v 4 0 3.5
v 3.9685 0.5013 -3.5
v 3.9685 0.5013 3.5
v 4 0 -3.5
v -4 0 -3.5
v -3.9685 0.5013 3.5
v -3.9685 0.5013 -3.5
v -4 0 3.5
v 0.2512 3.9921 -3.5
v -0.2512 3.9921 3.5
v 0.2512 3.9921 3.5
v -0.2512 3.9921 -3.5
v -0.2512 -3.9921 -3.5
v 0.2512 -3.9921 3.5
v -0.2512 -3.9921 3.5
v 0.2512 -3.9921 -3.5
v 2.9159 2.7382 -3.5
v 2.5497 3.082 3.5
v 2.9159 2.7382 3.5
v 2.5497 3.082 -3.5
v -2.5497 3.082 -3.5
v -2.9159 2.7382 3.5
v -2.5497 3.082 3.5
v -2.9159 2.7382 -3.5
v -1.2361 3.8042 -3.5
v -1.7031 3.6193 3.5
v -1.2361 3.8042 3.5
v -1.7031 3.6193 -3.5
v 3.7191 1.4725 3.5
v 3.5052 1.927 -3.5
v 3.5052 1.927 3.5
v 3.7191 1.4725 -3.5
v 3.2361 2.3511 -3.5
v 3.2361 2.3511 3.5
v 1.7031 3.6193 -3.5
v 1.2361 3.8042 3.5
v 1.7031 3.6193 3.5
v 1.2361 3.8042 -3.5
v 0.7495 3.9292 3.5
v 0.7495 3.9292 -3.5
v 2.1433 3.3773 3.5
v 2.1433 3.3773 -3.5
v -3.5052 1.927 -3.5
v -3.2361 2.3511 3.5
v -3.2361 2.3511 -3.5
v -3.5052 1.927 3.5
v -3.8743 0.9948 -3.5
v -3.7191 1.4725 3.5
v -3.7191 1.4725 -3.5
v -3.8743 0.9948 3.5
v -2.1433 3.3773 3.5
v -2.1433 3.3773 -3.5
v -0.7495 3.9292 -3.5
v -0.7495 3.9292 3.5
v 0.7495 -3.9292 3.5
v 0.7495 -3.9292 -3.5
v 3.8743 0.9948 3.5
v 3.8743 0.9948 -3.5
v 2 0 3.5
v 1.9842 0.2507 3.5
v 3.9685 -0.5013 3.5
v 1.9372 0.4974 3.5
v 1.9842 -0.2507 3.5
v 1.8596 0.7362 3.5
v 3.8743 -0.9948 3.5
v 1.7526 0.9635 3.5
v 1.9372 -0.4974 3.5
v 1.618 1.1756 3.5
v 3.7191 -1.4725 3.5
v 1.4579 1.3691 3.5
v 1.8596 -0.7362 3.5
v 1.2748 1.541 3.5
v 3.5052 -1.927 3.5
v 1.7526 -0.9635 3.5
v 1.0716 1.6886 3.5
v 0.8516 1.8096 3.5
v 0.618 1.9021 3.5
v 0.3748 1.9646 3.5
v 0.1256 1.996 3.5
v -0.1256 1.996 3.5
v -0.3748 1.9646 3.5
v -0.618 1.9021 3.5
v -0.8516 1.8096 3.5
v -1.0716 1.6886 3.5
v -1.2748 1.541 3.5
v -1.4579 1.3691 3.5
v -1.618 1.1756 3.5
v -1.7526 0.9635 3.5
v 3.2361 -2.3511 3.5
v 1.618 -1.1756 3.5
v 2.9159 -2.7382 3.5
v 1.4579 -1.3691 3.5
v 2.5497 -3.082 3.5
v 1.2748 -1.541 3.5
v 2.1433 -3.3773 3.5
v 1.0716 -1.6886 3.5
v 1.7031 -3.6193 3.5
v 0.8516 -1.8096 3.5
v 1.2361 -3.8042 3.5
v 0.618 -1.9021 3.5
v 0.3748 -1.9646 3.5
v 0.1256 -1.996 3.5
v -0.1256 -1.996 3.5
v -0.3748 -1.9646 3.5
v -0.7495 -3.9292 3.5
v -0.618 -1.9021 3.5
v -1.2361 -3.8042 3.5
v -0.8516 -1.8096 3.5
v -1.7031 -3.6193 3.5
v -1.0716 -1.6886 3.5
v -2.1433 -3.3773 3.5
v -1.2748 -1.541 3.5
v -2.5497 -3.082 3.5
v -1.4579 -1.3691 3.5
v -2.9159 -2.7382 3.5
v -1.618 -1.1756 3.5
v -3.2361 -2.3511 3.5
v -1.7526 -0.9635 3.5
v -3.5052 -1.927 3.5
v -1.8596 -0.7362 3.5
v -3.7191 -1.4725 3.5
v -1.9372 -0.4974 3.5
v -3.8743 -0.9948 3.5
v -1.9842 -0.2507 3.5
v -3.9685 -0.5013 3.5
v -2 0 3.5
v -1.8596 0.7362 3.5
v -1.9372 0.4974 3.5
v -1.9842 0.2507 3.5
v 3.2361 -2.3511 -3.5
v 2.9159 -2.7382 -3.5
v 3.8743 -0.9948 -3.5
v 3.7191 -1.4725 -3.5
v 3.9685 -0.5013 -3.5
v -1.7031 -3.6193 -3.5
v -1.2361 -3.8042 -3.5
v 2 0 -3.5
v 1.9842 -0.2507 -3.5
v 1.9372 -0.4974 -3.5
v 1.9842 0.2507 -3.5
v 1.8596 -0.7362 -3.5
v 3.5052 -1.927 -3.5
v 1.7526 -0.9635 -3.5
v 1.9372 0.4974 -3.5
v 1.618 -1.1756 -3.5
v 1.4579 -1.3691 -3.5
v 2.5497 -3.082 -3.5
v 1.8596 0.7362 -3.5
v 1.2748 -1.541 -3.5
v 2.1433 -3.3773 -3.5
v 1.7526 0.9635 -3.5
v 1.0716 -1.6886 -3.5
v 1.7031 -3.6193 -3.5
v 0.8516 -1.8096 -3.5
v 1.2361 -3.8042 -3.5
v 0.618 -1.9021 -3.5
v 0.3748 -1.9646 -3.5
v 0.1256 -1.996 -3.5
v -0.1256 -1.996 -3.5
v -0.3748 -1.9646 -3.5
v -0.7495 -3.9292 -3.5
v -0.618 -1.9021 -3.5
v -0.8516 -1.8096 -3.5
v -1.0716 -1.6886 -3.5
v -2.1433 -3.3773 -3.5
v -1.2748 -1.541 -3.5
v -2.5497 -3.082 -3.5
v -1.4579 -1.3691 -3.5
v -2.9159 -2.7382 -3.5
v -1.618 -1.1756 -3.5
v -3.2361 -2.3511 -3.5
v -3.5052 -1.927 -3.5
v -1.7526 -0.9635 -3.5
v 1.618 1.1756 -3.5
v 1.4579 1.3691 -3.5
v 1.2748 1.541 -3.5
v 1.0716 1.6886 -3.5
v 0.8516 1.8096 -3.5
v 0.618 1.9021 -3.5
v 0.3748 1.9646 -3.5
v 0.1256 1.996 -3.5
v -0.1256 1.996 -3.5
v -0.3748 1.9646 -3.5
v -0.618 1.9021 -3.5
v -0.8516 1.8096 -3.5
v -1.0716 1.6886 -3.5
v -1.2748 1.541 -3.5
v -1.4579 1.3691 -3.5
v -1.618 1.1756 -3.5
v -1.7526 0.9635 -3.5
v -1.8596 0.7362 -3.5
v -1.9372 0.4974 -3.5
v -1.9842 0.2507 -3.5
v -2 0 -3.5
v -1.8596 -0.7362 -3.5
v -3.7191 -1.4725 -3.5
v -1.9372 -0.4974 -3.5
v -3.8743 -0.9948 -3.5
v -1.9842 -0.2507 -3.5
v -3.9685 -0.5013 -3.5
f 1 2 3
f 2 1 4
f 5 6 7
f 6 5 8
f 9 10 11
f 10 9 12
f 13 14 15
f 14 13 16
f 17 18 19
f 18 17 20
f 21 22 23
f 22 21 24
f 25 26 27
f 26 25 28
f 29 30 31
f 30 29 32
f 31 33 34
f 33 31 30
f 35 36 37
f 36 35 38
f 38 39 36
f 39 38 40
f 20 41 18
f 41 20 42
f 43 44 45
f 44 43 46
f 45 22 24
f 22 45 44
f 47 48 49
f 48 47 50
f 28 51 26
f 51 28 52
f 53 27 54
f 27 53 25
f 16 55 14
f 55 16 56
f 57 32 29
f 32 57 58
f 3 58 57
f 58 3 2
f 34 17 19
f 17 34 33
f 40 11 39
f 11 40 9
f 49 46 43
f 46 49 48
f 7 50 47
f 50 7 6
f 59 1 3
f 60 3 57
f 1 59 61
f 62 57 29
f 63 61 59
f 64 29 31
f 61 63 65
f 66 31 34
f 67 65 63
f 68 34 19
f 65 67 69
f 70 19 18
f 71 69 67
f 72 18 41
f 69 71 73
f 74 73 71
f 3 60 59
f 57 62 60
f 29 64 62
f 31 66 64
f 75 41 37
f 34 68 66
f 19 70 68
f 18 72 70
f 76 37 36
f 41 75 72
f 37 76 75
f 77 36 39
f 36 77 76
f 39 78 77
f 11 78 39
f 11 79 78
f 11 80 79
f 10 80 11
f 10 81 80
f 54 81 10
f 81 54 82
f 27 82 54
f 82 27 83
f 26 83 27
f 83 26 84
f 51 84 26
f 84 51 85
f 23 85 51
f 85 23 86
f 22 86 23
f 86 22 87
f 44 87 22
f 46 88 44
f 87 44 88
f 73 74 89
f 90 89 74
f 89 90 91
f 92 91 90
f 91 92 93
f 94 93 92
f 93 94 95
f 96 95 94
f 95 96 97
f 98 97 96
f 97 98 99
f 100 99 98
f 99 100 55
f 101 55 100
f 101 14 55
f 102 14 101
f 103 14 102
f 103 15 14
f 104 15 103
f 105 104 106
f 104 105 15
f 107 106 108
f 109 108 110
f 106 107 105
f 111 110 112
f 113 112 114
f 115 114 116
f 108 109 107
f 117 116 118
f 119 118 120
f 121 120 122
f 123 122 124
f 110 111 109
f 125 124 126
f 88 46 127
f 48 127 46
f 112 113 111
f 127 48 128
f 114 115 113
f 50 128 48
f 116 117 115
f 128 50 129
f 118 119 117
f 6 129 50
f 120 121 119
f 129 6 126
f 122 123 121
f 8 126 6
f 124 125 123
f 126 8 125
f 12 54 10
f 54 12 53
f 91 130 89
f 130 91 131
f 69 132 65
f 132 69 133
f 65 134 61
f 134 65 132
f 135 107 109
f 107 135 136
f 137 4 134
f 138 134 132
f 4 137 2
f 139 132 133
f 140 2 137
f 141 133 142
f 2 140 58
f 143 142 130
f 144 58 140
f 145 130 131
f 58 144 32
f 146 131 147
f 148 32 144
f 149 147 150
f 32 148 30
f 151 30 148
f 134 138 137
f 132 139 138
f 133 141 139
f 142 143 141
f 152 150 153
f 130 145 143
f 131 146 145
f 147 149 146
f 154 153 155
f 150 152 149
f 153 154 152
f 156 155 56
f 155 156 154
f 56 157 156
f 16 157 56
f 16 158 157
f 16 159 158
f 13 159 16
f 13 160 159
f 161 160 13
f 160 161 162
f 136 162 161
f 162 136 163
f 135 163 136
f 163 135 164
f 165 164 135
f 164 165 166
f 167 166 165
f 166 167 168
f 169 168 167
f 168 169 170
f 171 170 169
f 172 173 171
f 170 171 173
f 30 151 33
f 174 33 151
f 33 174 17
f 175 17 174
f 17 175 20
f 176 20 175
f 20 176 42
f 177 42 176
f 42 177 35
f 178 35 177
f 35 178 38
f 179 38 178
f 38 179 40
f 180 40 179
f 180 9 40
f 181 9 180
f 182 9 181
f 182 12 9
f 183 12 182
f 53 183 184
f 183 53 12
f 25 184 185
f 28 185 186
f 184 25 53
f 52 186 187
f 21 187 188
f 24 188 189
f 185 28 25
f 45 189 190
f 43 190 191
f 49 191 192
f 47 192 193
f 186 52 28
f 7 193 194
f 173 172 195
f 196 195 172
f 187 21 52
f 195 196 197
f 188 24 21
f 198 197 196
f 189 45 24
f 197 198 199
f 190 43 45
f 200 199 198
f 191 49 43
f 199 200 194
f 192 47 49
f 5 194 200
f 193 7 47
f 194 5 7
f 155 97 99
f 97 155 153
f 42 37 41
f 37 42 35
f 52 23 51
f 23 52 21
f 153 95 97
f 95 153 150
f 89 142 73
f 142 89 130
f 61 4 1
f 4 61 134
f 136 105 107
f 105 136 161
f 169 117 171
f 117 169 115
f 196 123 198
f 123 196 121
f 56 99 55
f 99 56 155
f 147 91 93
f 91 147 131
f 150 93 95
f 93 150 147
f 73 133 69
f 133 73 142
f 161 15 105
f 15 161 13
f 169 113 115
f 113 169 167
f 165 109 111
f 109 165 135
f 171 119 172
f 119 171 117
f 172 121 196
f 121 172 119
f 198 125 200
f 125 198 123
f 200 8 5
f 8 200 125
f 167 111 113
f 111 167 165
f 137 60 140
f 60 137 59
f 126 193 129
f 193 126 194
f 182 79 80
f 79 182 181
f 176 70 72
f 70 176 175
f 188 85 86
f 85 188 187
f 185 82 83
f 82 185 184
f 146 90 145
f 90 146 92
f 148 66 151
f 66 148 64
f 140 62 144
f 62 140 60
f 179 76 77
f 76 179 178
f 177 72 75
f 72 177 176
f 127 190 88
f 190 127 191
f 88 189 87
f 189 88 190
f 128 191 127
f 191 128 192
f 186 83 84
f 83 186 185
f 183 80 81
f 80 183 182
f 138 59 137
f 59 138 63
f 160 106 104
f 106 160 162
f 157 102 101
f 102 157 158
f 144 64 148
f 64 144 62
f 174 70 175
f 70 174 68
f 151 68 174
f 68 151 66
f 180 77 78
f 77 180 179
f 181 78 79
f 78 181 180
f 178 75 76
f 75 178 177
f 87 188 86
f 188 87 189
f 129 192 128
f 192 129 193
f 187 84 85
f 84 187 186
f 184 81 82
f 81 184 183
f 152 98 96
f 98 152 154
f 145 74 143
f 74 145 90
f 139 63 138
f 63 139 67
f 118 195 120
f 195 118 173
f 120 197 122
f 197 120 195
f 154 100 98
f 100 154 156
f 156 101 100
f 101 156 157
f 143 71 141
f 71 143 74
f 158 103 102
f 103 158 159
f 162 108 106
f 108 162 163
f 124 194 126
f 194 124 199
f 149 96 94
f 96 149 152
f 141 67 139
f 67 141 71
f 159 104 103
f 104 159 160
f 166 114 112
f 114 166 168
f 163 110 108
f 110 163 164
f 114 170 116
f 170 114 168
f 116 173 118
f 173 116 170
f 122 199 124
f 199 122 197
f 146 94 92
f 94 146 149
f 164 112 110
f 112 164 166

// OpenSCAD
$fn = 50;


difference() {
	union() {
		translate(v = [0, 0, -3.5000000000]) {
			cylinder(h = 7, r = 4.0000000000);
		}
	}
	union() {
		translate(v = [0, 0, -100.0000000000]) {
			cylinder(h = 200, r = 2);
		}
	}
}
